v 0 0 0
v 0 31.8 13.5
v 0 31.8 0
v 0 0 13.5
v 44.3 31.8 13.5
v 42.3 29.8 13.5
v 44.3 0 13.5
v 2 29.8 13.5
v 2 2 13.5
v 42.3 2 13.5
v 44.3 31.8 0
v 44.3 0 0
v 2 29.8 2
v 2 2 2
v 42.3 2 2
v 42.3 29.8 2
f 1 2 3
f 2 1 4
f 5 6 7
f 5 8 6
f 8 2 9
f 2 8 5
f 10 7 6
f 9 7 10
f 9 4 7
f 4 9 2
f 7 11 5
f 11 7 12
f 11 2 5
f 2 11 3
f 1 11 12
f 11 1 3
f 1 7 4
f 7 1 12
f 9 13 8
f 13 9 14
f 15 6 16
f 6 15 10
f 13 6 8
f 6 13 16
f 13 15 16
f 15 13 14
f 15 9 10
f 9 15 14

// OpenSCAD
length = 40.30;
width = 27.80;
depth = 9.50;
perimeter = 2;

difference(){
	
	// bounding box
	cube([length+perimeter*2,width+perimeter*2,depth+perimeter*2]);
	
	// space needed to hold GENA
	translate([perimeter,perimeter,perimeter]){
		#cube([length,width,depth+perimeter*2]);
	}
}
